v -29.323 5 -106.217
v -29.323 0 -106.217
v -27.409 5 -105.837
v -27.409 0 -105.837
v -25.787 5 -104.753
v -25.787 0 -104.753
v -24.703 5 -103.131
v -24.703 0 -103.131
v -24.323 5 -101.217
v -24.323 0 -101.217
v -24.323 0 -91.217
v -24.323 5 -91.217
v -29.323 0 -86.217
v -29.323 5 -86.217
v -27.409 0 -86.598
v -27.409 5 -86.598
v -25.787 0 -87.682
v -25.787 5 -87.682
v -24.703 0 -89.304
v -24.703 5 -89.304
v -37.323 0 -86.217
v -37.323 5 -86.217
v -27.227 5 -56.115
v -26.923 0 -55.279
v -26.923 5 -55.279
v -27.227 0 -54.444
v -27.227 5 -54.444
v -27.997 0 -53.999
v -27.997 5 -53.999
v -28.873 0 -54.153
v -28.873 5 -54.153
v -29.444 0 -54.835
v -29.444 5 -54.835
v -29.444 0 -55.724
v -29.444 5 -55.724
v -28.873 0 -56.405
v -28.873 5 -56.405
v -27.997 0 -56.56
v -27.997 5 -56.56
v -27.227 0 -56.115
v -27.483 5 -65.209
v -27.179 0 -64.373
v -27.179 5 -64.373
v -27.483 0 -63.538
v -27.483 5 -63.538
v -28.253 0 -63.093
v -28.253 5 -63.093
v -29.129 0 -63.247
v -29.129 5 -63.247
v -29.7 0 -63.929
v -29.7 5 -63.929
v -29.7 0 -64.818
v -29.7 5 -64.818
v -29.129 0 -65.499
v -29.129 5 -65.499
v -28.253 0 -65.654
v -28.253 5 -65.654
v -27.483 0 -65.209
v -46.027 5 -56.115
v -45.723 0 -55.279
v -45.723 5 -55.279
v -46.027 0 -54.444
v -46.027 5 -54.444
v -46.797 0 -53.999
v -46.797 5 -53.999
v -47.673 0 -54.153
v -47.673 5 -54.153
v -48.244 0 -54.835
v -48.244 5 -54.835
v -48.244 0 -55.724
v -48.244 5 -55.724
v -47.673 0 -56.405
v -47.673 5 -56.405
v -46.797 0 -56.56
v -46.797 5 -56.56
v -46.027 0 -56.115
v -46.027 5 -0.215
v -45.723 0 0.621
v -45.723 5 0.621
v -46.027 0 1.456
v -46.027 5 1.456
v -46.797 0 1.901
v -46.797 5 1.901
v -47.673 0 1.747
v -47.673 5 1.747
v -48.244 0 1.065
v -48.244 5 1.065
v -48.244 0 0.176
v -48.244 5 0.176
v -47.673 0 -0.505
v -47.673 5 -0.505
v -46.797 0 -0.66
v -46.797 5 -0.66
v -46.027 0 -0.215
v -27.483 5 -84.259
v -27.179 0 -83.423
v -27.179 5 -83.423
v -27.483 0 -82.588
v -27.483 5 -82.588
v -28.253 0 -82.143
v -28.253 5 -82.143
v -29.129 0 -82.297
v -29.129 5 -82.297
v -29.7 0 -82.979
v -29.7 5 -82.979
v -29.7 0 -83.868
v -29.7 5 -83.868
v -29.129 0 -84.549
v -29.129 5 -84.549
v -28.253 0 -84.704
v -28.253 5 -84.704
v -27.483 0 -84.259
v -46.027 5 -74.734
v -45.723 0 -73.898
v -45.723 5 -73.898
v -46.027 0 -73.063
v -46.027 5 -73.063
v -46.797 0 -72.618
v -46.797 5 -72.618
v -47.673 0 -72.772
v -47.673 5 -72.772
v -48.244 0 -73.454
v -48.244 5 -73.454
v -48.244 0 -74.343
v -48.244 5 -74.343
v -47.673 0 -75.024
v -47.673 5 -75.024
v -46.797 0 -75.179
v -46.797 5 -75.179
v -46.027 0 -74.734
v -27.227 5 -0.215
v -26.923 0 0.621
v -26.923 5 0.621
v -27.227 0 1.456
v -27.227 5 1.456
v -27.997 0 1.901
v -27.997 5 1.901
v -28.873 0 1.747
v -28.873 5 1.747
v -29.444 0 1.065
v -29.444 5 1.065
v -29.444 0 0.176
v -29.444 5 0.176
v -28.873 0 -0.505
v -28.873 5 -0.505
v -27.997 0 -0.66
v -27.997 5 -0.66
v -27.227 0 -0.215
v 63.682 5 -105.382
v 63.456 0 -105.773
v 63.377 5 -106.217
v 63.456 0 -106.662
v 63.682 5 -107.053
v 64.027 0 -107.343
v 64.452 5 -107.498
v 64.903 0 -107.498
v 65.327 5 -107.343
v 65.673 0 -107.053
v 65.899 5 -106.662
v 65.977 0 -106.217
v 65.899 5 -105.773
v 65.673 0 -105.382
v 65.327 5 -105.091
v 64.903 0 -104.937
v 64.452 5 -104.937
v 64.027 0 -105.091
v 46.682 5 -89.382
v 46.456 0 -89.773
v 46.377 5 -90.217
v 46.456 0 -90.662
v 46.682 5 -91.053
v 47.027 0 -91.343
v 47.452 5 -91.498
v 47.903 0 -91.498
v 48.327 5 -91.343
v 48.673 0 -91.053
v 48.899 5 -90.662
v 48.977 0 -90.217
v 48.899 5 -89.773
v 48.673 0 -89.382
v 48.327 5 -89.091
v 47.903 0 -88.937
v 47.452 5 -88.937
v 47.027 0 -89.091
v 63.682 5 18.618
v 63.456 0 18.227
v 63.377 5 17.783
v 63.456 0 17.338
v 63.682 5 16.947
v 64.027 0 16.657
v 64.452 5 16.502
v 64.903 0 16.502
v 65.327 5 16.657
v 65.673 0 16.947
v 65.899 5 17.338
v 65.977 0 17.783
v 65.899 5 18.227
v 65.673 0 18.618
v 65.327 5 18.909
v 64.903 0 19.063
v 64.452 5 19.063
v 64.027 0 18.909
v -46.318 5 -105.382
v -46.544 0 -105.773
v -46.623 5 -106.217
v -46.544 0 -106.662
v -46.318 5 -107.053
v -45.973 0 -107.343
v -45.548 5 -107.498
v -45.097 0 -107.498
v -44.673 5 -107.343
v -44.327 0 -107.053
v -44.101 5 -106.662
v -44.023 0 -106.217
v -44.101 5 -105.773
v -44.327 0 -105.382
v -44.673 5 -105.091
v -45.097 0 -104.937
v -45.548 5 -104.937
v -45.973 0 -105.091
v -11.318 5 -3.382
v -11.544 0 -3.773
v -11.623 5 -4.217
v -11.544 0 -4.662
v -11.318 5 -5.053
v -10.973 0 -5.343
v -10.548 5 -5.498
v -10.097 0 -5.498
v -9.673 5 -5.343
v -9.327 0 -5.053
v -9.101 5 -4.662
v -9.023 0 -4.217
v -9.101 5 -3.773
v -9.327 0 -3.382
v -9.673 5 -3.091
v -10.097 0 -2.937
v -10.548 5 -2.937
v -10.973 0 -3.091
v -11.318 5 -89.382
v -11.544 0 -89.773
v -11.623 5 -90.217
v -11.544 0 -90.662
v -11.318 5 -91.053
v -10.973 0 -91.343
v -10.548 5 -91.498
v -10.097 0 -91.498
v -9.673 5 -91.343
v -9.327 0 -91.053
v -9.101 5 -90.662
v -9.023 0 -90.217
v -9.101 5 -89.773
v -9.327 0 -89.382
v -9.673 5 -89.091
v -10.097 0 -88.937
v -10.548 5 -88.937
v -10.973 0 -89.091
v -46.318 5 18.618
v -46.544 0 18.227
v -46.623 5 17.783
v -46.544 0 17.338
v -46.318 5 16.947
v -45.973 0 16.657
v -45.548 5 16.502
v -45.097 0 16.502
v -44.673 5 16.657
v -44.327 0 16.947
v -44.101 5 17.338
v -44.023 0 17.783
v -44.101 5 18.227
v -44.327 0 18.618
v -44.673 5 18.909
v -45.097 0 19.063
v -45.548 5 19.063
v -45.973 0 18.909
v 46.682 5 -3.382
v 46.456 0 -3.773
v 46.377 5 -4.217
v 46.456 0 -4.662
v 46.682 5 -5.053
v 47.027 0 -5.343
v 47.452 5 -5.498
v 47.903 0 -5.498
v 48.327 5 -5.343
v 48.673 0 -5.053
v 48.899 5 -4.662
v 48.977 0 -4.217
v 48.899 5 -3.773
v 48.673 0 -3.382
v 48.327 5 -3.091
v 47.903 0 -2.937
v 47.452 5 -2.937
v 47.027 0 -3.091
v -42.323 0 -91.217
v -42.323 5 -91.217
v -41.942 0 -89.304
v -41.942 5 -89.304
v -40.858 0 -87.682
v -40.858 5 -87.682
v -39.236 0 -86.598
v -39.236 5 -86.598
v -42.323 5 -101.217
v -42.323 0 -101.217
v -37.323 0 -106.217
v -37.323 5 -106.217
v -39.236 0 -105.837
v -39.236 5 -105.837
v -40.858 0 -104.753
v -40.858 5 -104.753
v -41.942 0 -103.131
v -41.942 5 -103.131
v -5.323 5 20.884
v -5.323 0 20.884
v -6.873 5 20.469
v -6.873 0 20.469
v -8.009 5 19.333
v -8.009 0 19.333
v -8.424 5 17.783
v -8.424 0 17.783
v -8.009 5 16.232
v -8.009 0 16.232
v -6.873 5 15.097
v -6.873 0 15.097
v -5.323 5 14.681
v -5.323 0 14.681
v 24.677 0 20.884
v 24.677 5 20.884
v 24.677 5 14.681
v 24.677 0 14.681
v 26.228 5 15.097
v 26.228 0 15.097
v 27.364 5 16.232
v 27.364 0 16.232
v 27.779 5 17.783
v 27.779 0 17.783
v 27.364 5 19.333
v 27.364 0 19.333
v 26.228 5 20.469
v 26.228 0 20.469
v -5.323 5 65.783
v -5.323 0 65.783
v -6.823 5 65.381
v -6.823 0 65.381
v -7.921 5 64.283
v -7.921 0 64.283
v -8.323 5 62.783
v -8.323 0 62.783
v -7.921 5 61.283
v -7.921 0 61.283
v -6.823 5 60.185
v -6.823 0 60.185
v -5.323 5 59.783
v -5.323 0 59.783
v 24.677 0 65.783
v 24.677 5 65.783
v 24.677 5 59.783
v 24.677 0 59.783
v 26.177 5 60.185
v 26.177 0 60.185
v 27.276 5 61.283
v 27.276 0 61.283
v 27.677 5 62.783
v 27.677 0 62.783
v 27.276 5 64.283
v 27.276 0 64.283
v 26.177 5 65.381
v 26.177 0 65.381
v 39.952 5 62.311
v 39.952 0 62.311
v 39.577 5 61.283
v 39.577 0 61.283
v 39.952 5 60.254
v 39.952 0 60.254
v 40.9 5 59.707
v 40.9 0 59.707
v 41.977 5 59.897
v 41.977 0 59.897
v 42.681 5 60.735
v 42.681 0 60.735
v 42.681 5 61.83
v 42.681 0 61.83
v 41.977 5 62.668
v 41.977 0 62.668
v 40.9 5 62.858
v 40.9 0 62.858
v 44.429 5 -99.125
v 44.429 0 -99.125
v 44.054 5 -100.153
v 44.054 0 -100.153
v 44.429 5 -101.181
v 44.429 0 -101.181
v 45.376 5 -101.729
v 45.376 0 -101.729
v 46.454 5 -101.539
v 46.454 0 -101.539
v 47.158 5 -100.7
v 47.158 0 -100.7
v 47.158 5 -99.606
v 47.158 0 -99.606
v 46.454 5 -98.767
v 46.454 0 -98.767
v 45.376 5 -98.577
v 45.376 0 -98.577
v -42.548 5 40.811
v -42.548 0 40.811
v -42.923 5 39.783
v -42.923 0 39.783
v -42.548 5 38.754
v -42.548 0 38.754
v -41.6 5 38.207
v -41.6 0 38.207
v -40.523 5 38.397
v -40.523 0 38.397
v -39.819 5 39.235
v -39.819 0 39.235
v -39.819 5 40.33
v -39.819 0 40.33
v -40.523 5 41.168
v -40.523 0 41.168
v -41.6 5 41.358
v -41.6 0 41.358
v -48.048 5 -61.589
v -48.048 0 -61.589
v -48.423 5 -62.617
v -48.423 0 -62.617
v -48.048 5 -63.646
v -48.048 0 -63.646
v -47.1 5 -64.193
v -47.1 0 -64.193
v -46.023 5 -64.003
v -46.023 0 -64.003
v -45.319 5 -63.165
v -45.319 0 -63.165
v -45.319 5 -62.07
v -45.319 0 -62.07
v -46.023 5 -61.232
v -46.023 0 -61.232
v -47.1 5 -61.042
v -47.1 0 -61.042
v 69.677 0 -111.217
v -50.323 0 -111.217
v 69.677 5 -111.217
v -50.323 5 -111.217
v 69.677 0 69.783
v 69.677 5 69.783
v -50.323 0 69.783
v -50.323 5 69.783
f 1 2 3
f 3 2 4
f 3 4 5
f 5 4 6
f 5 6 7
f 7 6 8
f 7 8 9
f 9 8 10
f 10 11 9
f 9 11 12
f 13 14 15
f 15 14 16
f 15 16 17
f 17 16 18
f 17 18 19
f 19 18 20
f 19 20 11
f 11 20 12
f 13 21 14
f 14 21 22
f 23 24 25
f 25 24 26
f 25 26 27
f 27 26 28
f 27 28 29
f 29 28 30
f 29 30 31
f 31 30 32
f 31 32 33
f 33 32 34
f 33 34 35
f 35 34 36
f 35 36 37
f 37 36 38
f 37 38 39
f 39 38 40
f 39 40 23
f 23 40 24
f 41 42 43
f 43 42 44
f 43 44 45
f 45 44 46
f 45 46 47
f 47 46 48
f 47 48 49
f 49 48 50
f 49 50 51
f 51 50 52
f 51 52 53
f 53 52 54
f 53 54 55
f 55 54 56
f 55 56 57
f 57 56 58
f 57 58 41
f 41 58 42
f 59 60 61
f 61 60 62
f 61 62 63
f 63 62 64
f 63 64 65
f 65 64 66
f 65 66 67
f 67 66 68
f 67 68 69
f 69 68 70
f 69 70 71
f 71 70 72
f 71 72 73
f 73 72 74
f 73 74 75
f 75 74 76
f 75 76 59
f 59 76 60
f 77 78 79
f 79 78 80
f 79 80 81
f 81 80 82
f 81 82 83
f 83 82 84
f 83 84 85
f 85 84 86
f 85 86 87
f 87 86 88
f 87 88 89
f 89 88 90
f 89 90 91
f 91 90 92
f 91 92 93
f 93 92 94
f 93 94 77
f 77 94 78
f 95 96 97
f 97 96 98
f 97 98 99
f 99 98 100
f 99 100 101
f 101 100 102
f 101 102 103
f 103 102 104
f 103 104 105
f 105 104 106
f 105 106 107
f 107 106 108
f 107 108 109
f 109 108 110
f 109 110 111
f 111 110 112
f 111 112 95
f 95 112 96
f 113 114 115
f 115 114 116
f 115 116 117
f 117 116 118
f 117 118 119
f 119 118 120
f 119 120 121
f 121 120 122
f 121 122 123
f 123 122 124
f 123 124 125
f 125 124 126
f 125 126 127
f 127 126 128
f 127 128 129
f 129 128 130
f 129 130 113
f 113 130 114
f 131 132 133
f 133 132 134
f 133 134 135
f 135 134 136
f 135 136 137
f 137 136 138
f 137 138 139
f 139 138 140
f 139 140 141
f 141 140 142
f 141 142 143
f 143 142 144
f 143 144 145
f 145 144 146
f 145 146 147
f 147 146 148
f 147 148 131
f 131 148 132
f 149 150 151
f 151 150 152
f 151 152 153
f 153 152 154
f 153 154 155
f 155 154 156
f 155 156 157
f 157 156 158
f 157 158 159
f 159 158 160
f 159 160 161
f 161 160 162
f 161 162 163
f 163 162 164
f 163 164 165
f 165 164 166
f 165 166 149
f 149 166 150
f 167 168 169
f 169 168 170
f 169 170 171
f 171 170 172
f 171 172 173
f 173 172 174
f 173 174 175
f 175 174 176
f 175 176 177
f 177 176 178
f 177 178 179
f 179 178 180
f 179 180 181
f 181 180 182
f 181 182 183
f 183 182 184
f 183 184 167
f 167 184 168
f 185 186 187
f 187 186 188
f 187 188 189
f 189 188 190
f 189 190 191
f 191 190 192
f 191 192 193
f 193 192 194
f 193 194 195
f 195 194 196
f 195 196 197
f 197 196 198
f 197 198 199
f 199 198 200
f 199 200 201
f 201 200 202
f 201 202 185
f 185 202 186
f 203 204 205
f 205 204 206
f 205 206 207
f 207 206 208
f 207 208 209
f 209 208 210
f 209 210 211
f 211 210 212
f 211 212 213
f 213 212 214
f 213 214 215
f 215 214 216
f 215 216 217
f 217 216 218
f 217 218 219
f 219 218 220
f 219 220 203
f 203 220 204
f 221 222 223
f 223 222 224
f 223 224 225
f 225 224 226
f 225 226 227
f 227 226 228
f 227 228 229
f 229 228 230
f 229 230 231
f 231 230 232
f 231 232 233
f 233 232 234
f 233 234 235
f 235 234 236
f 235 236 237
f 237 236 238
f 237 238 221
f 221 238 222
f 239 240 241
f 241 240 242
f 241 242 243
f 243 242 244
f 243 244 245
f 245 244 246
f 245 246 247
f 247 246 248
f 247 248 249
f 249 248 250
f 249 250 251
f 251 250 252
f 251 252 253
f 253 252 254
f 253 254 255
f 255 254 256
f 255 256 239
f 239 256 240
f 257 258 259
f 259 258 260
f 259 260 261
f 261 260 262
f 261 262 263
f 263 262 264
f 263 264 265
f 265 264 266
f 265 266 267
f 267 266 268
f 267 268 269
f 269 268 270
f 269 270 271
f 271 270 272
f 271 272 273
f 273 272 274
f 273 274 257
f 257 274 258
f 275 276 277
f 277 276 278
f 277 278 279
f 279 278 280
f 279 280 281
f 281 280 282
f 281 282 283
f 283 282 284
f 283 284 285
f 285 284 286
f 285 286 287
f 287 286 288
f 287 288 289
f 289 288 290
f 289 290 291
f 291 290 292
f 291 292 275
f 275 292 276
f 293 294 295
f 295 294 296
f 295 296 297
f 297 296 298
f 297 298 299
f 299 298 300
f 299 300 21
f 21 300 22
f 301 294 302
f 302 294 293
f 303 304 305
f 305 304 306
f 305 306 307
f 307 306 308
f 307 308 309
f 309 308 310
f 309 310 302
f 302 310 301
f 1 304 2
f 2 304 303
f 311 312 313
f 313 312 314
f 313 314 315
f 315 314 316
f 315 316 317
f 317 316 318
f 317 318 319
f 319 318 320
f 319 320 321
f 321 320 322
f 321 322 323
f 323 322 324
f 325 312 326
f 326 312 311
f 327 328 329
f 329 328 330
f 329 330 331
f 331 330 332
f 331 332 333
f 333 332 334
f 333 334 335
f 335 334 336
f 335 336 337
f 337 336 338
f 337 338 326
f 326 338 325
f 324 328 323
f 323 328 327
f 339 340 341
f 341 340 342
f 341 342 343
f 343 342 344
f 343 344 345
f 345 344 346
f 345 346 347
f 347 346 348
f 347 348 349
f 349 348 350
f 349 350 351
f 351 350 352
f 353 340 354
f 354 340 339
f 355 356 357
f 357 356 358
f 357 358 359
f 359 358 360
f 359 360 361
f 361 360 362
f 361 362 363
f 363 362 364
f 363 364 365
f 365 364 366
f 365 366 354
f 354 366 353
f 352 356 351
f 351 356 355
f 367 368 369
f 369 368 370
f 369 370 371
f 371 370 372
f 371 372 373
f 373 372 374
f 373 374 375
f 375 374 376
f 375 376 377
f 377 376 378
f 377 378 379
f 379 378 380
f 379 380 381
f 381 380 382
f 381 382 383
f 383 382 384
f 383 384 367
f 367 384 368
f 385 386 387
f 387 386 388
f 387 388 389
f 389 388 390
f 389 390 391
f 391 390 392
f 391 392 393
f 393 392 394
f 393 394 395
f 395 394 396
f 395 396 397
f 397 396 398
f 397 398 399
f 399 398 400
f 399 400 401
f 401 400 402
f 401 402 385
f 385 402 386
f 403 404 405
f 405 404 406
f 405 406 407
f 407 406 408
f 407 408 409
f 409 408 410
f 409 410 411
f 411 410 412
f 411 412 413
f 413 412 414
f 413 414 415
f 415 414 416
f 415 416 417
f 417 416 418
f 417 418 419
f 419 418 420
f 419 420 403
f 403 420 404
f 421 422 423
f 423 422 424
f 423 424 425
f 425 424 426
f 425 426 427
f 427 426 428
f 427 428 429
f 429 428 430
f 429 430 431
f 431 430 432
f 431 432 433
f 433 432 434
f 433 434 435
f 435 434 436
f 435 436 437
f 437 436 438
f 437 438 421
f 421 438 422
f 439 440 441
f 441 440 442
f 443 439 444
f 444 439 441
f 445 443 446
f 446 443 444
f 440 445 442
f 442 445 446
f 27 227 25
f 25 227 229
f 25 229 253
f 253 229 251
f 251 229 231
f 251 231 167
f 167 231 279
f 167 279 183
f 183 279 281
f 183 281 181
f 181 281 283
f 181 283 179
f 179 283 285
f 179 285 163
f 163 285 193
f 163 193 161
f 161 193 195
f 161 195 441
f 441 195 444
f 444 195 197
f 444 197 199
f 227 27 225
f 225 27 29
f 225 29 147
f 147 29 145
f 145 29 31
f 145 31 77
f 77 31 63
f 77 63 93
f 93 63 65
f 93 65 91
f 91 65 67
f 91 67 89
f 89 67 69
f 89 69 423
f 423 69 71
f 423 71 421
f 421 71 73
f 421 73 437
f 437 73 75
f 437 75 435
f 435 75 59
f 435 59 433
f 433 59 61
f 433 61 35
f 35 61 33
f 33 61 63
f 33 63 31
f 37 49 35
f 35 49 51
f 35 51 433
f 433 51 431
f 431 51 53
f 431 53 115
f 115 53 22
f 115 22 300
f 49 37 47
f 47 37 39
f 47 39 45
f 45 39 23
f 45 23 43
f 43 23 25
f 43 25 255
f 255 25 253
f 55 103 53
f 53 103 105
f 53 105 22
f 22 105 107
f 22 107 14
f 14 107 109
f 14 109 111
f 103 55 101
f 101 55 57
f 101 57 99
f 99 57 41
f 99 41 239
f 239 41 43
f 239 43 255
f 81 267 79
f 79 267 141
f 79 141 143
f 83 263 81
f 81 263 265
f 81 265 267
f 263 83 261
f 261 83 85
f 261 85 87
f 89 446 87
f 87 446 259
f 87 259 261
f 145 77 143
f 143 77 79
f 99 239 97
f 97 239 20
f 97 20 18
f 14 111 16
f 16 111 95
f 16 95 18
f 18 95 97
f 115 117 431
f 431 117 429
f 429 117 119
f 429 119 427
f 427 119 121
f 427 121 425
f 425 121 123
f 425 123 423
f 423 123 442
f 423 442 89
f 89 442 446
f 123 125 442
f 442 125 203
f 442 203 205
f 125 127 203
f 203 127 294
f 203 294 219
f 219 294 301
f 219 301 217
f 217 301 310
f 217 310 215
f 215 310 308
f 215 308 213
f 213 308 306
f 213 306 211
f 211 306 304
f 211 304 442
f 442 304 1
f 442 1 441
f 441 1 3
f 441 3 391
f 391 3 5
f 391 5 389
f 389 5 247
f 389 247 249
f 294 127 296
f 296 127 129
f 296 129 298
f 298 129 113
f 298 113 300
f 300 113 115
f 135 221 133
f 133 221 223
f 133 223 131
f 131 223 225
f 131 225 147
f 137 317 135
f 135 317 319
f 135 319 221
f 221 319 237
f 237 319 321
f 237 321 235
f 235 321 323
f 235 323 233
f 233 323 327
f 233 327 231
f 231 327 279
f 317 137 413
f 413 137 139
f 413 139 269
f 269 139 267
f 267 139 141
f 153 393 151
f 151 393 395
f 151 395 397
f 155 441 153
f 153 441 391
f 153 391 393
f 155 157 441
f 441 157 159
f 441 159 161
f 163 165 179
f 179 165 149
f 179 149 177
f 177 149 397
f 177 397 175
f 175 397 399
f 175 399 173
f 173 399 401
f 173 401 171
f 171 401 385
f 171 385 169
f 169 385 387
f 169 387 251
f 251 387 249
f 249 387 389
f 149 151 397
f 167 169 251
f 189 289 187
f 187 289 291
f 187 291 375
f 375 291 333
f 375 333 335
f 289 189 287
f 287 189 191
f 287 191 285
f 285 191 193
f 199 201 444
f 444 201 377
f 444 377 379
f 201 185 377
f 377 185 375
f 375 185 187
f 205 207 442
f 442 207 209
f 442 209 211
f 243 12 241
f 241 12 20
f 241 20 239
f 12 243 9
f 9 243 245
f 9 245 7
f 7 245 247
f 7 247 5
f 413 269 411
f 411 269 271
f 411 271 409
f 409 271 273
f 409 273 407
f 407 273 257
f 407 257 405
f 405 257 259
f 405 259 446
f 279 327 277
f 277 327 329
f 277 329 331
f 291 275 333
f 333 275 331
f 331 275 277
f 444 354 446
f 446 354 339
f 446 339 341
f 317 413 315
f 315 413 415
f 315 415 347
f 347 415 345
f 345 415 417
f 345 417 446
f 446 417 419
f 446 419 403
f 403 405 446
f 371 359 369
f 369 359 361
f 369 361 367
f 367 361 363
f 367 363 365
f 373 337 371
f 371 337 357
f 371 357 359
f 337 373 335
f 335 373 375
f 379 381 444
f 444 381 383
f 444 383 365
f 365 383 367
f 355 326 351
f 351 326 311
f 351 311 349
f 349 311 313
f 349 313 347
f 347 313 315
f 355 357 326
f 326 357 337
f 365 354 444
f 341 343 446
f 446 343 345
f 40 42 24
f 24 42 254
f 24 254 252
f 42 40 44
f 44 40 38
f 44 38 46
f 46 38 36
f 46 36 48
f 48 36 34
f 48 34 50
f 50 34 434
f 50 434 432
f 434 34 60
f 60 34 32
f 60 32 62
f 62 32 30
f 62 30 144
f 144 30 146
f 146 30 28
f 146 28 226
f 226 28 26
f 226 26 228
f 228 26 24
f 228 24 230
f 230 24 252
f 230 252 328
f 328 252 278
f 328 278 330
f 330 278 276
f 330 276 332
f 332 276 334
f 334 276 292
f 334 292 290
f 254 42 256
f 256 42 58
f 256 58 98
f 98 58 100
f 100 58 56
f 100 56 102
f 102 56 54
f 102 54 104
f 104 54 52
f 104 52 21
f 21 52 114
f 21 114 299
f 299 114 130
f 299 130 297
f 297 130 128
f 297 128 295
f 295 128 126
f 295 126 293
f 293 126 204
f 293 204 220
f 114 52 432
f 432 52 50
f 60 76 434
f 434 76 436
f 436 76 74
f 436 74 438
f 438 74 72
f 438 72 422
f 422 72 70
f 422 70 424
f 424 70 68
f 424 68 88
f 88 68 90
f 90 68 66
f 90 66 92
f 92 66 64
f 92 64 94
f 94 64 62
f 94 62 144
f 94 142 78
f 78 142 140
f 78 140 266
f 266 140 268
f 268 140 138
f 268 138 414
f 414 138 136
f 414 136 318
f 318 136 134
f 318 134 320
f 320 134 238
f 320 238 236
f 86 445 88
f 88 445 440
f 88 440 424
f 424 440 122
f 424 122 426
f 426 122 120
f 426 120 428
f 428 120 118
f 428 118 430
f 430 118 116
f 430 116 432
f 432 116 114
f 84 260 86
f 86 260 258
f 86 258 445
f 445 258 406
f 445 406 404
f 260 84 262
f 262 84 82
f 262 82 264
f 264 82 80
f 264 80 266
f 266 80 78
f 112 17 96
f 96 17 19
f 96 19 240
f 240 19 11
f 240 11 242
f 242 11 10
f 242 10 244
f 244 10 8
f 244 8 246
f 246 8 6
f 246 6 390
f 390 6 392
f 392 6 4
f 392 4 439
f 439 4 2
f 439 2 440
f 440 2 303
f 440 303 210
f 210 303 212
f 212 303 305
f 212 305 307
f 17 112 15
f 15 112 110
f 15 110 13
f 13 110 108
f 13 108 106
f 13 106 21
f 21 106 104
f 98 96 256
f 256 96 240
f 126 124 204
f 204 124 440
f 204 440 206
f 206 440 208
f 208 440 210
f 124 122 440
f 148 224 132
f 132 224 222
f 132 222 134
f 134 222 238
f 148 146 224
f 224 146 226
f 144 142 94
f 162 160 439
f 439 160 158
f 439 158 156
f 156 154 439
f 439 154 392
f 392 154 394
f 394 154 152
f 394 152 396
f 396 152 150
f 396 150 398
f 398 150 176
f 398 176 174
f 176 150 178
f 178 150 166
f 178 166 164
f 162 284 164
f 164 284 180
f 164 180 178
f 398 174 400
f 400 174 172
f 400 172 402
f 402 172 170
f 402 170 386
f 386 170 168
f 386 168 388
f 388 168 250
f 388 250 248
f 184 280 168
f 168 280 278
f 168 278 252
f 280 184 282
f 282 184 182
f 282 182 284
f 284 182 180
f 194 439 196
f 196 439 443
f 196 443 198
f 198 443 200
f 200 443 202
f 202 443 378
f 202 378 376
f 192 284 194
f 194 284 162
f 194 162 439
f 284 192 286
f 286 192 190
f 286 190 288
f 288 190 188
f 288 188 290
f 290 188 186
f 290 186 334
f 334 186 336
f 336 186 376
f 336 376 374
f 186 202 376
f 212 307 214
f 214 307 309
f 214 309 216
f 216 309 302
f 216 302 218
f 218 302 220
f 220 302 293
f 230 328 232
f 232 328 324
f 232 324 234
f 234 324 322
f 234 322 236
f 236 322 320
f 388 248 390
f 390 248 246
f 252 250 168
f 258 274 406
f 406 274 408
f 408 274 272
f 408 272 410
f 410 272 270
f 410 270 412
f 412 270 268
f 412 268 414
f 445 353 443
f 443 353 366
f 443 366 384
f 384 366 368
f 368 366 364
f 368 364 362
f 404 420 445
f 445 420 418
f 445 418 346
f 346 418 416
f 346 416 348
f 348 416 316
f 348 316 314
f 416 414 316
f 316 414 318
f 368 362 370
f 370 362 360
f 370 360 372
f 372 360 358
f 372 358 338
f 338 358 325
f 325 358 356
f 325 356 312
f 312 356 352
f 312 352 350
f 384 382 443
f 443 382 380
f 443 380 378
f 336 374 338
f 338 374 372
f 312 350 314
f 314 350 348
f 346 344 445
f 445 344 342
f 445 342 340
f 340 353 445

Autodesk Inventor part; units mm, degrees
ref_plane "YZ Plane" through (0, 0, 0) normal (1, 0, 0) x (0, 1, 0)
ref_plane "XZ Plane" through (0, 0, 0) normal (0, 1, 0) x (-1, 0, 0)
ref_plane "XY Plane" through (0, 0, 0) normal (0, 0, 1) x (1, 0, 0)
sketch "Sketch1" plane through (0, 0, 0) normal (0, 1, 0) x (-1, 0, 0)
  line L0 (35.3225, -111.2173) -> (35.3225, -99.2173)
  arc A0 (39.3225, -95.2173) -> (35.3225, -99.2173) centre (39.3225, -99.2173) ccw
  line L1 (39.3225, -95.2173) -> (50.3225, -95.2173)
  line L2 (50.3225, -95.2173) -> (50.3225, -19.2173)
  line L3 (50.3225, -19.2173) -> (41.3225, -10.2173)
  line L4 (41.3225, -10.2173) -> (41.3225, 19.7827)
  line L5 (41.3225, 19.7827) -> (50.3225, 29.7827)
  line L6 (50.3225, 29.7827) -> (50.3225, 56.7827)
  line L7 (50.3225, 56.7827) -> (41.3225, 61.4627)
  line L8 (41.3225, 61.4627) -> (25.3225, 69.7827)
  line L9 (25.3225, 69.7827) -> (-44.6775, 69.7827)
  line L10 (-44.6775, 69.7827) -> (-69.6775, 56.7827)
  line L11 (-69.6775, 56.7827) -> (-69.6775, -95.2173)
  line L12 (-69.6775, -95.2173) -> (-58.6775, -95.2173)
  arc A1 (-54.6775, -99.2173) -> (-58.6775, -95.2173) centre (-58.6775, -99.2173) ccw
  line L13 (-54.6775, -99.2173) -> (-54.6775, -111.2173)
  line L14 (-54.6775, -111.2173) -> (35.3225, -111.2173)
  circle A2 centre (-1.2775, -73.2173) radius 1.6
  circle A3 centre (46.8225, -62.6173) radius 1.6
  circle A4 centre (-45.6543, -100.153) radius 1.6
  circle A5 centre (-41.1775, 61.2827) radius 1.6
  circle A6 centre (41.3225, 39.7827) radius 1.6
  circle A7 centre (46.8225, -72.6173) radius 1.6
  line L15 (-24.6775, 65.7827) -> (5.3225, 65.7827)
  arc A8 (5.3225, 59.7827) -> (5.3225, 65.7827) centre (5.3225, 62.7827) ccw
  line L16 (5.3225, 59.7827) -> (-24.6775, 59.7827)
  arc A9 (-24.6775, 65.7827) -> (-24.6775, 59.7827) centre (-24.6775, 62.7827) ccw
  line L17 (5.3225, 14.6811) -> (-24.6775, 14.6811)
  arc A10 (-24.6775, 20.8843) -> (-24.6775, 14.6811) centre (-24.6775, 17.7827) ccw
  line L18 (-24.6775, 20.8843) -> (5.3225, 20.8843)
  arc A11 (5.3225, 14.6811) -> (5.3225, 20.8843) centre (5.3225, 17.7827) ccw
  circle A12 centre (20.3225, 49.7827) radius 1.6
  circle A13 centre (20.3225, -90.2173) radius 1.6
  circle A14 centre (-39.6775, 49.7827) radius 1.6
  circle A15 centre (-39.6775, -90.2173) radius 1.6
  line L19 (25.3225, 69.7827) -> (50.3225, 69.7827)
  line L20 (50.3225, 69.7827) -> (50.3225, 56.7827)
  line L21 (-44.6775, 69.7827) -> (-69.6775, 69.7827)
  line L22 (-69.6775, 69.7827) -> (-69.6775, 56.7827)
extrude "Extrusion1" add sketch "Sketch1" along normal blind 5 contours L14 L13 A1 L12 L11 L10 L9 L8 L7 L6 L5 L4 L3 L2 L1 A0 L0 | L22 L21 L10 | L19 L20 L7 L8 | A2 | A7 | A12 | A13 | A14 | A15
sketch "Sketch18" plane through (0, 5, 0) normal (0, 1, 0) x (1, 0, 0)
  line L0 (-50.3225, 95.2173) -> (-50.3225, 19.2173) projected
  line L1 (-50.3225, 19.2173) -> (-41.3225, 10.2173) projected
  line L2 (-41.3225, 10.2173) -> (-41.3225, -19.7827) projected
  line L3 (-41.3225, -19.7827) -> (-50.3225, -29.7827) projected
  line L4 (-50.3225, -29.7827) -> (-50.3225, -69.7827) projected
  line L5 (-50.3225, -69.7827) -> (69.6775, -69.7827) projected
  line L6 (69.6775, -69.7827) -> (69.6775, 95.2173) projected
  line L7 (69.6775, 95.2173) -> (58.6775, 95.2173) projected
  arc A0 (54.6775, 99.2173) -> (58.6775, 95.2173) centre (58.6775, 99.2173) ccw projected
  line L8 (54.6775, 99.2173) -> (54.6775, 111.2173) projected
  line L9 (54.6775, 111.2173) -> (-35.3225, 111.2173) projected
  line L10 (-35.3225, 111.2173) -> (-35.3225, 99.2173) projected
  arc A1 (-39.3225, 95.2173) -> (-35.3225, 99.2173) centre (-39.3225, 99.2173) ccw projected
  line L11 (-39.3225, 95.2173) -> (-50.3225, 95.2173) projected
  circle A2 centre (-46.8225, 62.6173) radius 1.6 projected
  circle A3 centre (-41.3225, -39.7827) radius 1.6 projected
  circle A4 centre (45.6543, 100.153) radius 1.6 projected
  circle A5 centre (41.1775, -61.2827) radius 1.6 projected
  line L12 (-5.3225, -59.7827) -> (24.6775, -59.7827) projected
  arc A6 (24.6775, -65.7827) -> (24.6775, -59.7827) centre (24.6775, -62.7827) ccw projected
  line L13 (24.6775, -65.7827) -> (-5.3225, -65.7827) projected
  arc A7 (-5.3225, -59.7827) -> (-5.3225, -65.7827) centre (-5.3225, -62.7827) ccw projected
  line L14 (-5.3225, -14.6811) -> (24.6775, -14.6811) projected
  arc A8 (24.6775, -20.8843) -> (24.6775, -14.6811) centre (24.6775, -17.7827) ccw projected
  line L15 (24.6775, -20.8843) -> (-5.3225, -20.8843) projected
  arc A9 (-5.3225, -14.6811) -> (-5.3225, -20.8843) centre (-5.3225, -17.7827) ccw projected
  line L16 (-50.3225, 95.2173) -> (-50.3225, 111.2173)
  line L17 (-50.3225, 111.2173) -> (-35.3225, 111.2173)
  line L18 (54.6775, 111.2173) -> (69.6775, 111.2173)
  line L19 (69.6775, 111.2173) -> (69.6775, 95.2173)
  line L20 (-50.3225, 19.2173) -> (-50.3225, -29.7827)
  point P0 (0, 0)
extrude "Extrusion14" add sketch "Sketch18" against normal blind 5 contours L16 L17 L10 A1 L11 | L1 L2 L3 L20 | L18 L19 L7 A0 L8
sketch "Sketch20" plane through (0, 0, 0) normal (0, -1, 0) x (1, 0, 0)
  line L0 (-23.2225, 2.6207) -> (-42.0225, 2.6207) construction
  line L1 (-42.0225, 2.6207) -> (-42.0225, -53.2793) construction
  line L2 (-42.0225, -53.2793) -> (-23.2225, -53.2793) construction
  line L3 (-23.2225, -53.2793) -> (-23.2225, 2.6207) construction
  line L4 (47.6775, -4.2173) -> (-10.3225, -4.2173) construction
  line L5 (-10.3225, -4.2173) -> (-10.3225, -90.2173) construction
  line L6 (-10.3225, -90.2173) -> (47.6775, -90.2173) construction
  line L7 (47.6775, -90.2173) -> (47.6775, -4.2173) construction
  line L8 (-23.4785, -64.3733) -> (-42.5285, -64.3733) construction
  line L9 (-42.5285, -64.3733) -> (-42.5285, -83.4233) construction
  line L10 (-42.5285, -83.4233) -> (-23.4785, -83.4233) construction
  line L11 (-23.4785, -83.4233) -> (-23.4785, -64.3733) construction
  circle A0 centre (-23.2225, 2.6207) radius 1.3
  circle A1 centre (-23.2225, -53.2793) radius 1.3
  circle A2 centre (-42.0225, 2.6207) radius 1.3
  circle A3 centre (-42.0225, -53.2793) radius 1.3
  circle A4 centre (-23.4785, -64.3733) radius 1.3
  circle A5 centre (-23.4785, -83.4233) radius 1.3
  line L12 (-20.6845, -61.5793) -> (-45.3225, -61.5793) construction
  line L13 (-45.3225, -61.5793) -> (-45.3225, -86.2173) construction
  line L14 (-37.3225, -86.2173) -> (-20.6845, -86.2173) construction
  line L15 (-20.6845, -86.2173) -> (-20.6845, -61.5793) construction
  line L16 (-19.9225, 5.9207) -> (-45.3225, 5.9207) construction
  line L17 (-45.3225, 5.9207) -> (-45.3225, -56.5793) construction
  line L18 (-45.3225, -56.5793) -> (-19.9225, -56.5793) construction
  line L19 (-19.9225, -56.5793) -> (-19.9225, 5.9207) construction
  circle A6 centre (47.6775, -4.2173) radius 1.3
  circle A7 centre (-10.3225, -4.2173) radius 1.3
  circle A8 centre (-10.3225, -90.2173) radius 1.3
  circle A9 centre (47.6775, -90.2173) radius 1.3
  line L20 (64.6775, 5.7827) -> (-14.3225, 5.7827) construction
  line L21 (-14.3225, 5.7827) -> (-14.3225, -94.2173) construction
  line L22 (-14.3225, -94.2173) -> (64.6775, -94.2173) construction
  line L23 (64.6775, -94.2173) -> (64.6775, 5.7827) construction
  line L24 (64.6775, 17.7827) -> (-45.3225, 17.7827) construction
  line L25 (-45.3225, 17.7827) -> (-45.3225, -106.2173) construction
  line L26 (-37.3225, -106.2173) -> (64.6775, -106.2173) construction
  line L27 (64.6775, -106.2173) -> (64.6775, 17.7827) construction
  circle A10 centre (64.6775, 17.7827) radius 1.3
  circle A11 centre (-45.3225, 17.7827) radius 1.3
  circle A12 centre (-45.3225, -106.2173) radius 1.3
  circle A13 centre (64.6775, -106.2173) radius 1.3
  line L28 (-50.3225, -111.2173) -> (69.6775, -111.2173) construction
  line L29 (69.6775, 69.7827) -> (69.6775, -111.2173) construction
  line L30 (-50.3225, -111.2173) -> (-50.3225, 69.7827) construction
  line L31 (25.1775, 5.7827) -> (64.6775, 17.7827) construction
  line L32 (25.1775, -94.2173) -> (64.6775, -106.2173) construction
  line L33 (-42.3225, -86.2173) -> (-22.3225, -86.2173)
  line L34 (-17.3225, -91.2173) -> (-17.3225, -101.2173)
  line L35 (-22.3225, -106.2173) -> (-42.3225, -106.2173)
  line L36 (-42.3225, -101.2173) -> (-42.3225, -91.2173)
  arc A14 (-17.3225, -91.2173) -> (-22.3225, -86.2173) centre (-22.3225, -91.2173) ccw
  arc A15 (-22.3225, -106.2173) -> (-17.3225, -101.2173) centre (-22.3225, -101.2173) ccw
  arc A16 (-42.3225, -101.2173) -> (-37.3225, -106.2173) centre (-37.3225, -101.2173) ccw
  arc A17 (-37.3225, -86.2173) -> (-42.3225, -91.2173) centre (-37.3225, -91.2173) ccw
  circle A18 centre (-42.5285, -73.8983) radius 1.3
  point P0 (0, 0)
  point P1 (-32.6225, -56.5793)
  point P2 (-17.3225, -106.2173)
  dimension "d122" = 2.6
  dimension "d123" = 2.6
  dimension "d124" = 2.6
  dimension "d125" = 2.6
  dimension "d126" = 2.6
  dimension "d128" = 2.6
  dimension "d130" = 19.05
  dimension "d131" = 2.794
  dimension "d132" = 2.794
  dimension "d133" = 2.794
  dimension "d134" = 55.9
  dimension "d135" = 18.8
  dimension "d136" = 3.3
  dimension "d137" = 3.3
  dimension "d138" = 3.3
  dimension "d139" = 2.6
  dimension "d140" = 2.6
  dimension "d141" = 2.6
  dimension "d142" = 2.6
  dimension "d143" = 86
  dimension "d144" = 58
  dimension "d145" = 10
  dimension "d146" = 4
  dimension "d147" = 17
  dimension "d148" = 4
  dimension "d149" = 2.6
  dimension "d150" = 2.6
  dimension "d151" = 2.6
  dimension "d152" = 2.6
  dimension "d153" = 5
  dimension "d154" = 5
  dimension "d155" = 5
  dimension "d156" = 124
  dimension "d158" = 3.3
  dimension "d159" = 21.844
  dimension "d160" = 25
  dimension "d161" = 5
  dimension "d164" = 3
  dimension "d165" = 3
  dimension "d167" = 5
  dimension "d168" = 2.794
  dimension "d169" = 2.6
extrude "Extrusion15" cut sketch "Sketch20" against normal blind 10
sketch "Sketch22" plane through (0, 0, 0) normal (0, -1, 0) x (1, 0, 0)
  circle A0 centre (64.6775, -106.2173) radius 1.3 projected
  circle A1 centre (47.6775, -90.2173) radius 1.3 projected
  circle A2 centre (64.6775, 17.7827) radius 1.3 projected
  circle A3 centre (-45.3225, -106.2173) radius 1.3 projected
  circle A4 centre (-23.2225, -53.2793) radius 1.3 projected
  circle A5 centre (-42.0225, -53.2793) radius 1.3 projected
  circle A6 centre (-10.3225, -4.2173) radius 1.3 projected
  circle A7 centre (-42.5285, -73.8983) radius 1.3 projected
  circle A8 centre (-10.3225, -90.2173) radius 1.3 projected
  circle A9 centre (-23.4785, -83.4233) radius 1.3 projected
  circle A10 centre (-42.0225, 2.6207) radius 1.3 projected
  circle A11 centre (-23.2225, 2.6207) radius 1.3 projected
  circle A12 centre (-45.3225, 17.7827) radius 1.3 projected
  circle A13 centre (-23.4785, -64.3733) radius 1.3 projected
  circle A14 centre (47.6775, -4.2173) radius 1.3 projected
  arc A15 (-37.3225, -86.2173) -> (-42.3225, -91.2173) centre (-37.3225, -91.2173) ccw projected
  line L0 (-37.3225, -86.2173) -> (-22.3225, -86.2173) projected
  arc A16 (-17.3225, -91.2173) -> (-22.3225, -86.2173) centre (-22.3225, -91.2173) ccw projected
  line L1 (-17.3225, -91.2173) -> (-17.3225, -101.2173) projected
  arc A17 (-22.3225, -106.2173) -> (-17.3225, -101.2173) centre (-22.3225, -101.2173) ccw projected
  line L2 (-22.3225, -106.2173) -> (-37.3225, -106.2173) projected
  arc A18 (-42.3225, -101.2173) -> (-37.3225, -106.2173) centre (-37.3225, -101.2173) ccw projected
  line L3 (-42.3225, -101.2173) -> (-42.3225, -91.2173) projected
  line L4 (-50.3225, -111.2173) -> (-50.3225, 69.7827) projected
  line L5 (-50.3225, -111.2173) -> (69.6775, -111.2173) projected
  line L6 (69.6775, 69.7827) -> (69.6775, -111.2173) projected
  line L7 (-50.3225, 69.7827) -> (69.6775, 69.7827) projected
  circle A19 centre (-46.8225, -62.6173) radius 1.6 projected
  circle A20 centre (-41.3225, 39.7827) radius 1.6 projected
  circle A21 centre (45.6543, -100.153) radius 1.6 projected
  circle A22 centre (41.1775, 61.2827) radius 1.6 projected
  line L8 (-5.3225, 59.7827) -> (24.6775, 59.7827) projected
  arc A23 (-5.3225, 65.7827) -> (-5.3225, 59.7827) centre (-5.3225, 62.7827) ccw projected
  line L9 (24.6775, 65.7827) -> (-5.3225, 65.7827) projected
  arc A24 (24.6775, 59.7827) -> (24.6775, 65.7827) centre (24.6775, 62.7827) ccw projected
  line L10 (-5.3225, 14.6811) -> (24.6775, 14.6811) projected
  arc A25 (-5.3225, 20.8843) -> (-5.3225, 14.6811) centre (-5.3225, 17.7827) ccw projected
  line L11 (24.6775, 20.8843) -> (-5.3225, 20.8843) projected
  arc A26 (24.6775, 14.6811) -> (24.6775, 20.8843) centre (24.6775, 17.7827) ccw projected
  point P0 (0, 0)
extrude "Extrusion16" add sketch "Sketch22" against normal blind 5 contours A4 | A5 | A7 | A9 | A10 | A11 | A13
sketch "Sketch23" plane through (0, 0, 0) normal (0, -1, 0) x (1, 0, 0)
  circle A0 centre (-47.0225, 0.6207) radius 1.25 projected
  circle A1 centre (-28.2225, 0.6207) radius 1.25 projected
  circle A2 centre (-47.0225, -55.2793) radius 1.25 projected
  circle A3 centre (-28.2225, -55.2793) radius 1.25 projected
  circle A4 centre (-28.4785, -83.4233) radius 1.0922 projected
  circle A5 centre (-28.4785, -64.3733) radius 1.0922 projected
  point P0 (0, 0)
extrude "Extrusion17" cut sketch "Sketch23" against normal blind 5
sketch "Sketch24" plane through (0, 0, 0) normal (0, -1, 0) x (1, 0, 0)
  circle A0 centre (-28.2225, -55.2793) radius 1.25 projected
  circle A1 centre (-28.4785, -83.4233) radius 1.0922 projected
  circle A2 centre (-28.2225, 0.6207) radius 1.25 projected
  circle A3 centre (-47.0225, -55.2793) radius 1.25 projected
  circle A4 centre (-28.4785, -64.3733) radius 1.0922 projected
  circle A5 centre (-47.0225, 0.6207) radius 1.25 projected
  circle A6 centre (64.6775, -106.2173) radius 1.3 projected
  circle A7 centre (47.6775, -90.2173) radius 1.3 projected
  circle A8 centre (64.6775, 17.7827) radius 1.3 projected
  circle A9 centre (-45.3225, -106.2173) radius 1.3 projected
  circle A10 centre (-10.3225, -4.2173) radius 1.3 projected
  circle A11 centre (-10.3225, -90.2173) radius 1.3 projected
  circle A12 centre (-45.3225, 17.7827) radius 1.3 projected
  circle A13 centre (47.6775, -4.2173) radius 1.3 projected
  arc A14 (-37.3225, -86.2173) -> (-42.3225, -91.2173) centre (-37.3225, -91.2173) ccw projected
  line L0 (-37.3225, -86.2173) -> (-22.3225, -86.2173) projected
  arc A15 (-17.3225, -91.2173) -> (-22.3225, -86.2173) centre (-22.3225, -91.2173) ccw projected
  line L1 (-17.3225, -91.2173) -> (-17.3225, -101.2173) projected
  arc A16 (-22.3225, -106.2173) -> (-17.3225, -101.2173) centre (-22.3225, -101.2173) ccw projected
  line L2 (-22.3225, -106.2173) -> (-37.3225, -106.2173) projected
  arc A17 (-42.3225, -101.2173) -> (-37.3225, -106.2173) centre (-37.3225, -101.2173) ccw projected
  line L3 (-42.3225, -101.2173) -> (-42.3225, -91.2173) projected
  line L4 (-50.3225, -111.2173) -> (-50.3225, 69.7827) projected
  line L5 (-50.3225, -111.2173) -> (69.6775, -111.2173) projected
  line L6 (69.6775, 69.7827) -> (69.6775, -111.2173) projected
  line L7 (-50.3225, 69.7827) -> (69.6775, 69.7827) projected
  circle A18 centre (-46.8225, -62.6173) radius 1.6 projected
  circle A19 centre (-41.3225, 39.7827) radius 1.6 projected
  circle A20 centre (45.6543, -100.153) radius 1.6 projected
  circle A21 centre (41.1775, 61.2827) radius 1.6 projected
  line L8 (-5.3225, 59.7827) -> (24.6775, 59.7827) projected
  arc A22 (-5.3225, 65.7827) -> (-5.3225, 59.7827) centre (-5.3225, 62.7827) ccw projected
  line L9 (24.6775, 65.7827) -> (-5.3225, 65.7827) projected
  arc A23 (24.6775, 59.7827) -> (24.6775, 65.7827) centre (24.6775, 62.7827) ccw projected
  line L10 (-5.3225, 14.6811) -> (24.6775, 14.6811) projected
  arc A24 (-5.3225, 20.8843) -> (-5.3225, 14.6811) centre (-5.3225, 17.7827) ccw projected
  line L11 (24.6775, 20.8843) -> (-5.3225, 20.8843) projected
  arc A25 (24.6775, 14.6811) -> (24.6775, 20.8843) centre (24.6775, 17.7827) ccw projected
  circle A26 centre (-28.2225, 0.6207) radius 1.3
  circle A27 centre (-47.0225, 0.6207) radius 1.3
  circle A28 centre (-47.0225, -55.2793) radius 1.3
  circle A29 centre (-28.2225, -55.2793) radius 1.3
  circle A30 centre (-28.4785, -83.4233) radius 1.3
  circle A31 centre (-28.4785, -64.3733) radius 1.3
  circle A32 centre (-47.0225, -73.8983) radius 1.3
  line L12 (-47.0225, -55.2793) -> (-47.0225, -73.8983) construction
  line L13 (-47.0225, -73.8983) -> (-28.4785, -64.3733) construction
  line L14 (-47.0225, -73.8983) -> (-28.4785, -83.4233) construction
  point P0 (0, 0)
  dimension "d174" = 2.6
extrude "Extrusion18" cut sketch "Sketch24" against normal blind 5 contours A2 | A5 | A26 | A27 | A28 | A29 | A30 | A31 | A32
sketch "Sketch25" plane through (0, 0, 0) normal (0, -1, 0) x (1, 0, 0)
  circle A0 centre (-28.2225, -55.2793) radius 1.3 projected
  circle A1 centre (-28.4785, -64.3733) radius 1.3 projected
  circle A2 centre (-47.0225, -55.2793) radius 1.3 projected
  circle A3 centre (-47.0225, 0.6207) radius 1.3 projected
  circle A4 centre (-28.4785, -83.4233) radius 1.3 projected
  circle A5 centre (-47.0225, -73.8983) radius 1.3 projected
  circle A6 centre (-28.2225, 0.6207) radius 1.3 projected
  circle A7 centre (64.6775, -106.2173) radius 1.3 projected
  circle A8 centre (47.6775, -90.2173) radius 1.3 projected
  circle A9 centre (64.6775, 17.7827) radius 1.3 projected
  circle A10 centre (-45.3225, -106.2173) radius 1.3 projected
  circle A11 centre (-10.3225, -4.2173) radius 1.3 projected
  circle A12 centre (-10.3225, -90.2173) radius 1.3 projected
  circle A13 centre (-45.3225, 17.7827) radius 1.3 projected
  circle A14 centre (47.6775, -4.2173) radius 1.3 projected
  arc A15 (-37.3225, -86.2173) -> (-42.3225, -91.2173) centre (-37.3225, -91.2173) ccw projected
  line L0 (-37.3225, -86.2173) -> (-22.3225, -86.2173) projected
  arc A16 (-17.3225, -91.2173) -> (-22.3225, -86.2173) centre (-22.3225, -91.2173) ccw projected
  line L1 (-17.3225, -91.2173) -> (-17.3225, -101.2173) projected
  arc A17 (-22.3225, -106.2173) -> (-17.3225, -101.2173) centre (-22.3225, -101.2173) ccw projected
  line L2 (-22.3225, -106.2173) -> (-37.3225, -106.2173) projected
  arc A18 (-42.3225, -101.2173) -> (-37.3225, -106.2173) centre (-37.3225, -101.2173) ccw projected
  line L3 (-42.3225, -101.2173) -> (-42.3225, -91.2173) projected
  line L4 (-50.3225, -111.2173) -> (-50.3225, 69.7827) projected
  line L5 (-50.3225, -111.2173) -> (69.6775, -111.2173) projected
  line L6 (69.6775, 69.7827) -> (69.6775, -111.2173) projected
  line L7 (-50.3225, 69.7827) -> (69.6775, 69.7827) projected
  circle A19 centre (-46.8225, -62.6173) radius 1.6 projected
  circle A20 centre (-41.3225, 39.7827) radius 1.6 projected
  circle A21 centre (45.6543, -100.153) radius 1.6 projected
  circle A22 centre (41.1775, 61.2827) radius 1.6 projected
  line L8 (-5.3225, 59.7827) -> (24.6775, 59.7827) projected
  arc A23 (-5.3225, 65.7827) -> (-5.3225, 59.7827) centre (-5.3225, 62.7827) ccw projected
  line L9 (24.6775, 65.7827) -> (-5.3225, 65.7827) projected
  arc A24 (24.6775, 59.7827) -> (24.6775, 65.7827) centre (24.6775, 62.7827) ccw projected
  line L10 (-5.3225, 14.6811) -> (24.6775, 14.6811) projected
  arc A25 (-5.3225, 20.8843) -> (-5.3225, 14.6811) centre (-5.3225, 17.7827) ccw projected
  line L11 (24.6775, 20.8843) -> (-5.3225, 20.8843) projected
  arc A26 (24.6775, 14.6811) -> (24.6775, 20.8843) centre (24.6775, 17.7827) ccw projected
  line L12 (-17.3225, -86.2173) -> (-24.3225, -86.2173)
  line L13 (-24.3225, -86.2173) -> (-24.3225, -106.2173)
  line L14 (-24.3225, -106.2173) -> (-17.3225, -106.2173)
  line L15 (-17.3225, -106.2173) -> (-17.3225, -86.2173)
  line L16 (-37.3225, -86.2173) -> (-22.3225, -86.2173) projected
  point P0 (0, 0)
  dimension "d179" = 26
extrude "Extrusion20" add sketch "Sketch25" against normal blind 5 contours L0 A16 L1 A17 L2 L13
fillet "Fillet2" radius 5 2 edges at (-24.3225, 2.5, -86.2173) (-24.3225, 2.5, -106.2173)
properties part number "tamiya_chassis_3DPrint"
